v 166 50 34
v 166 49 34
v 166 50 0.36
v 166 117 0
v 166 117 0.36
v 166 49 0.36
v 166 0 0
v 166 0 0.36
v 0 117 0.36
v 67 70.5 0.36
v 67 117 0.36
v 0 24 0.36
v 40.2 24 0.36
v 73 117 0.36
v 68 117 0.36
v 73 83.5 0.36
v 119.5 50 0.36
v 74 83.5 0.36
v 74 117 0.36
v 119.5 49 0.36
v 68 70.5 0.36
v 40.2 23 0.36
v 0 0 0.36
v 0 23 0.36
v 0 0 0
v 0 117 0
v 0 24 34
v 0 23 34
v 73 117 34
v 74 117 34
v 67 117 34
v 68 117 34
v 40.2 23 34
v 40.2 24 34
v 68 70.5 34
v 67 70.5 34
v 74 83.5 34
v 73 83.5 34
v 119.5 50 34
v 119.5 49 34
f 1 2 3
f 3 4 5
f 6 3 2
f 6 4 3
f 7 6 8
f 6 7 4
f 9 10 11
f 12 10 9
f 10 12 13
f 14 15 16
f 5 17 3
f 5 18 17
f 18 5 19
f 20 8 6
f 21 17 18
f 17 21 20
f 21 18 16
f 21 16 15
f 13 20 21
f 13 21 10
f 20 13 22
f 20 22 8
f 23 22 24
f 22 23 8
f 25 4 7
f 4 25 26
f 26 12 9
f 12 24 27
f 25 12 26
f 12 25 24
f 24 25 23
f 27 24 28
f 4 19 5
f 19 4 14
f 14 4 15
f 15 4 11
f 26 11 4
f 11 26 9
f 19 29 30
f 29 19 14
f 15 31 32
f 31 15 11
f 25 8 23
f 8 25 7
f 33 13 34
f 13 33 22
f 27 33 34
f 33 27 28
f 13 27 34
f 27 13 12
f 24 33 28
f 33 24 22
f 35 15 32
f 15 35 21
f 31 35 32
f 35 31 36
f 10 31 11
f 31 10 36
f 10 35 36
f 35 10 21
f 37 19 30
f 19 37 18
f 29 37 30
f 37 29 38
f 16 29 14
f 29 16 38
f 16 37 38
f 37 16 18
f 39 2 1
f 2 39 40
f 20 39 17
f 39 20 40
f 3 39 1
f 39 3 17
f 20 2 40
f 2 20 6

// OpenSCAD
// Mindbug

// 119mm wide, 168mm long

cube([166, 117, 0.36]);

//166-92

// Card is 88, so 92 with slack
// 62 so 66 with slack

cardw = 67;
cardh = 93;
frac = 0.5;

translate([0, 117-cardh-1, 0]) cube([cardw*0.6,1, 34]);
translate([cardw,117-cardh*frac, 0]) cube([1,cardh*frac, 34]);

translate([166-cardh,117-cardw*frac, 0]) cube([1,cardw*frac, 34]);
translate([166-cardh*frac, 117-cardw-1, 0]) cube([cardh*frac,1, 34]);
